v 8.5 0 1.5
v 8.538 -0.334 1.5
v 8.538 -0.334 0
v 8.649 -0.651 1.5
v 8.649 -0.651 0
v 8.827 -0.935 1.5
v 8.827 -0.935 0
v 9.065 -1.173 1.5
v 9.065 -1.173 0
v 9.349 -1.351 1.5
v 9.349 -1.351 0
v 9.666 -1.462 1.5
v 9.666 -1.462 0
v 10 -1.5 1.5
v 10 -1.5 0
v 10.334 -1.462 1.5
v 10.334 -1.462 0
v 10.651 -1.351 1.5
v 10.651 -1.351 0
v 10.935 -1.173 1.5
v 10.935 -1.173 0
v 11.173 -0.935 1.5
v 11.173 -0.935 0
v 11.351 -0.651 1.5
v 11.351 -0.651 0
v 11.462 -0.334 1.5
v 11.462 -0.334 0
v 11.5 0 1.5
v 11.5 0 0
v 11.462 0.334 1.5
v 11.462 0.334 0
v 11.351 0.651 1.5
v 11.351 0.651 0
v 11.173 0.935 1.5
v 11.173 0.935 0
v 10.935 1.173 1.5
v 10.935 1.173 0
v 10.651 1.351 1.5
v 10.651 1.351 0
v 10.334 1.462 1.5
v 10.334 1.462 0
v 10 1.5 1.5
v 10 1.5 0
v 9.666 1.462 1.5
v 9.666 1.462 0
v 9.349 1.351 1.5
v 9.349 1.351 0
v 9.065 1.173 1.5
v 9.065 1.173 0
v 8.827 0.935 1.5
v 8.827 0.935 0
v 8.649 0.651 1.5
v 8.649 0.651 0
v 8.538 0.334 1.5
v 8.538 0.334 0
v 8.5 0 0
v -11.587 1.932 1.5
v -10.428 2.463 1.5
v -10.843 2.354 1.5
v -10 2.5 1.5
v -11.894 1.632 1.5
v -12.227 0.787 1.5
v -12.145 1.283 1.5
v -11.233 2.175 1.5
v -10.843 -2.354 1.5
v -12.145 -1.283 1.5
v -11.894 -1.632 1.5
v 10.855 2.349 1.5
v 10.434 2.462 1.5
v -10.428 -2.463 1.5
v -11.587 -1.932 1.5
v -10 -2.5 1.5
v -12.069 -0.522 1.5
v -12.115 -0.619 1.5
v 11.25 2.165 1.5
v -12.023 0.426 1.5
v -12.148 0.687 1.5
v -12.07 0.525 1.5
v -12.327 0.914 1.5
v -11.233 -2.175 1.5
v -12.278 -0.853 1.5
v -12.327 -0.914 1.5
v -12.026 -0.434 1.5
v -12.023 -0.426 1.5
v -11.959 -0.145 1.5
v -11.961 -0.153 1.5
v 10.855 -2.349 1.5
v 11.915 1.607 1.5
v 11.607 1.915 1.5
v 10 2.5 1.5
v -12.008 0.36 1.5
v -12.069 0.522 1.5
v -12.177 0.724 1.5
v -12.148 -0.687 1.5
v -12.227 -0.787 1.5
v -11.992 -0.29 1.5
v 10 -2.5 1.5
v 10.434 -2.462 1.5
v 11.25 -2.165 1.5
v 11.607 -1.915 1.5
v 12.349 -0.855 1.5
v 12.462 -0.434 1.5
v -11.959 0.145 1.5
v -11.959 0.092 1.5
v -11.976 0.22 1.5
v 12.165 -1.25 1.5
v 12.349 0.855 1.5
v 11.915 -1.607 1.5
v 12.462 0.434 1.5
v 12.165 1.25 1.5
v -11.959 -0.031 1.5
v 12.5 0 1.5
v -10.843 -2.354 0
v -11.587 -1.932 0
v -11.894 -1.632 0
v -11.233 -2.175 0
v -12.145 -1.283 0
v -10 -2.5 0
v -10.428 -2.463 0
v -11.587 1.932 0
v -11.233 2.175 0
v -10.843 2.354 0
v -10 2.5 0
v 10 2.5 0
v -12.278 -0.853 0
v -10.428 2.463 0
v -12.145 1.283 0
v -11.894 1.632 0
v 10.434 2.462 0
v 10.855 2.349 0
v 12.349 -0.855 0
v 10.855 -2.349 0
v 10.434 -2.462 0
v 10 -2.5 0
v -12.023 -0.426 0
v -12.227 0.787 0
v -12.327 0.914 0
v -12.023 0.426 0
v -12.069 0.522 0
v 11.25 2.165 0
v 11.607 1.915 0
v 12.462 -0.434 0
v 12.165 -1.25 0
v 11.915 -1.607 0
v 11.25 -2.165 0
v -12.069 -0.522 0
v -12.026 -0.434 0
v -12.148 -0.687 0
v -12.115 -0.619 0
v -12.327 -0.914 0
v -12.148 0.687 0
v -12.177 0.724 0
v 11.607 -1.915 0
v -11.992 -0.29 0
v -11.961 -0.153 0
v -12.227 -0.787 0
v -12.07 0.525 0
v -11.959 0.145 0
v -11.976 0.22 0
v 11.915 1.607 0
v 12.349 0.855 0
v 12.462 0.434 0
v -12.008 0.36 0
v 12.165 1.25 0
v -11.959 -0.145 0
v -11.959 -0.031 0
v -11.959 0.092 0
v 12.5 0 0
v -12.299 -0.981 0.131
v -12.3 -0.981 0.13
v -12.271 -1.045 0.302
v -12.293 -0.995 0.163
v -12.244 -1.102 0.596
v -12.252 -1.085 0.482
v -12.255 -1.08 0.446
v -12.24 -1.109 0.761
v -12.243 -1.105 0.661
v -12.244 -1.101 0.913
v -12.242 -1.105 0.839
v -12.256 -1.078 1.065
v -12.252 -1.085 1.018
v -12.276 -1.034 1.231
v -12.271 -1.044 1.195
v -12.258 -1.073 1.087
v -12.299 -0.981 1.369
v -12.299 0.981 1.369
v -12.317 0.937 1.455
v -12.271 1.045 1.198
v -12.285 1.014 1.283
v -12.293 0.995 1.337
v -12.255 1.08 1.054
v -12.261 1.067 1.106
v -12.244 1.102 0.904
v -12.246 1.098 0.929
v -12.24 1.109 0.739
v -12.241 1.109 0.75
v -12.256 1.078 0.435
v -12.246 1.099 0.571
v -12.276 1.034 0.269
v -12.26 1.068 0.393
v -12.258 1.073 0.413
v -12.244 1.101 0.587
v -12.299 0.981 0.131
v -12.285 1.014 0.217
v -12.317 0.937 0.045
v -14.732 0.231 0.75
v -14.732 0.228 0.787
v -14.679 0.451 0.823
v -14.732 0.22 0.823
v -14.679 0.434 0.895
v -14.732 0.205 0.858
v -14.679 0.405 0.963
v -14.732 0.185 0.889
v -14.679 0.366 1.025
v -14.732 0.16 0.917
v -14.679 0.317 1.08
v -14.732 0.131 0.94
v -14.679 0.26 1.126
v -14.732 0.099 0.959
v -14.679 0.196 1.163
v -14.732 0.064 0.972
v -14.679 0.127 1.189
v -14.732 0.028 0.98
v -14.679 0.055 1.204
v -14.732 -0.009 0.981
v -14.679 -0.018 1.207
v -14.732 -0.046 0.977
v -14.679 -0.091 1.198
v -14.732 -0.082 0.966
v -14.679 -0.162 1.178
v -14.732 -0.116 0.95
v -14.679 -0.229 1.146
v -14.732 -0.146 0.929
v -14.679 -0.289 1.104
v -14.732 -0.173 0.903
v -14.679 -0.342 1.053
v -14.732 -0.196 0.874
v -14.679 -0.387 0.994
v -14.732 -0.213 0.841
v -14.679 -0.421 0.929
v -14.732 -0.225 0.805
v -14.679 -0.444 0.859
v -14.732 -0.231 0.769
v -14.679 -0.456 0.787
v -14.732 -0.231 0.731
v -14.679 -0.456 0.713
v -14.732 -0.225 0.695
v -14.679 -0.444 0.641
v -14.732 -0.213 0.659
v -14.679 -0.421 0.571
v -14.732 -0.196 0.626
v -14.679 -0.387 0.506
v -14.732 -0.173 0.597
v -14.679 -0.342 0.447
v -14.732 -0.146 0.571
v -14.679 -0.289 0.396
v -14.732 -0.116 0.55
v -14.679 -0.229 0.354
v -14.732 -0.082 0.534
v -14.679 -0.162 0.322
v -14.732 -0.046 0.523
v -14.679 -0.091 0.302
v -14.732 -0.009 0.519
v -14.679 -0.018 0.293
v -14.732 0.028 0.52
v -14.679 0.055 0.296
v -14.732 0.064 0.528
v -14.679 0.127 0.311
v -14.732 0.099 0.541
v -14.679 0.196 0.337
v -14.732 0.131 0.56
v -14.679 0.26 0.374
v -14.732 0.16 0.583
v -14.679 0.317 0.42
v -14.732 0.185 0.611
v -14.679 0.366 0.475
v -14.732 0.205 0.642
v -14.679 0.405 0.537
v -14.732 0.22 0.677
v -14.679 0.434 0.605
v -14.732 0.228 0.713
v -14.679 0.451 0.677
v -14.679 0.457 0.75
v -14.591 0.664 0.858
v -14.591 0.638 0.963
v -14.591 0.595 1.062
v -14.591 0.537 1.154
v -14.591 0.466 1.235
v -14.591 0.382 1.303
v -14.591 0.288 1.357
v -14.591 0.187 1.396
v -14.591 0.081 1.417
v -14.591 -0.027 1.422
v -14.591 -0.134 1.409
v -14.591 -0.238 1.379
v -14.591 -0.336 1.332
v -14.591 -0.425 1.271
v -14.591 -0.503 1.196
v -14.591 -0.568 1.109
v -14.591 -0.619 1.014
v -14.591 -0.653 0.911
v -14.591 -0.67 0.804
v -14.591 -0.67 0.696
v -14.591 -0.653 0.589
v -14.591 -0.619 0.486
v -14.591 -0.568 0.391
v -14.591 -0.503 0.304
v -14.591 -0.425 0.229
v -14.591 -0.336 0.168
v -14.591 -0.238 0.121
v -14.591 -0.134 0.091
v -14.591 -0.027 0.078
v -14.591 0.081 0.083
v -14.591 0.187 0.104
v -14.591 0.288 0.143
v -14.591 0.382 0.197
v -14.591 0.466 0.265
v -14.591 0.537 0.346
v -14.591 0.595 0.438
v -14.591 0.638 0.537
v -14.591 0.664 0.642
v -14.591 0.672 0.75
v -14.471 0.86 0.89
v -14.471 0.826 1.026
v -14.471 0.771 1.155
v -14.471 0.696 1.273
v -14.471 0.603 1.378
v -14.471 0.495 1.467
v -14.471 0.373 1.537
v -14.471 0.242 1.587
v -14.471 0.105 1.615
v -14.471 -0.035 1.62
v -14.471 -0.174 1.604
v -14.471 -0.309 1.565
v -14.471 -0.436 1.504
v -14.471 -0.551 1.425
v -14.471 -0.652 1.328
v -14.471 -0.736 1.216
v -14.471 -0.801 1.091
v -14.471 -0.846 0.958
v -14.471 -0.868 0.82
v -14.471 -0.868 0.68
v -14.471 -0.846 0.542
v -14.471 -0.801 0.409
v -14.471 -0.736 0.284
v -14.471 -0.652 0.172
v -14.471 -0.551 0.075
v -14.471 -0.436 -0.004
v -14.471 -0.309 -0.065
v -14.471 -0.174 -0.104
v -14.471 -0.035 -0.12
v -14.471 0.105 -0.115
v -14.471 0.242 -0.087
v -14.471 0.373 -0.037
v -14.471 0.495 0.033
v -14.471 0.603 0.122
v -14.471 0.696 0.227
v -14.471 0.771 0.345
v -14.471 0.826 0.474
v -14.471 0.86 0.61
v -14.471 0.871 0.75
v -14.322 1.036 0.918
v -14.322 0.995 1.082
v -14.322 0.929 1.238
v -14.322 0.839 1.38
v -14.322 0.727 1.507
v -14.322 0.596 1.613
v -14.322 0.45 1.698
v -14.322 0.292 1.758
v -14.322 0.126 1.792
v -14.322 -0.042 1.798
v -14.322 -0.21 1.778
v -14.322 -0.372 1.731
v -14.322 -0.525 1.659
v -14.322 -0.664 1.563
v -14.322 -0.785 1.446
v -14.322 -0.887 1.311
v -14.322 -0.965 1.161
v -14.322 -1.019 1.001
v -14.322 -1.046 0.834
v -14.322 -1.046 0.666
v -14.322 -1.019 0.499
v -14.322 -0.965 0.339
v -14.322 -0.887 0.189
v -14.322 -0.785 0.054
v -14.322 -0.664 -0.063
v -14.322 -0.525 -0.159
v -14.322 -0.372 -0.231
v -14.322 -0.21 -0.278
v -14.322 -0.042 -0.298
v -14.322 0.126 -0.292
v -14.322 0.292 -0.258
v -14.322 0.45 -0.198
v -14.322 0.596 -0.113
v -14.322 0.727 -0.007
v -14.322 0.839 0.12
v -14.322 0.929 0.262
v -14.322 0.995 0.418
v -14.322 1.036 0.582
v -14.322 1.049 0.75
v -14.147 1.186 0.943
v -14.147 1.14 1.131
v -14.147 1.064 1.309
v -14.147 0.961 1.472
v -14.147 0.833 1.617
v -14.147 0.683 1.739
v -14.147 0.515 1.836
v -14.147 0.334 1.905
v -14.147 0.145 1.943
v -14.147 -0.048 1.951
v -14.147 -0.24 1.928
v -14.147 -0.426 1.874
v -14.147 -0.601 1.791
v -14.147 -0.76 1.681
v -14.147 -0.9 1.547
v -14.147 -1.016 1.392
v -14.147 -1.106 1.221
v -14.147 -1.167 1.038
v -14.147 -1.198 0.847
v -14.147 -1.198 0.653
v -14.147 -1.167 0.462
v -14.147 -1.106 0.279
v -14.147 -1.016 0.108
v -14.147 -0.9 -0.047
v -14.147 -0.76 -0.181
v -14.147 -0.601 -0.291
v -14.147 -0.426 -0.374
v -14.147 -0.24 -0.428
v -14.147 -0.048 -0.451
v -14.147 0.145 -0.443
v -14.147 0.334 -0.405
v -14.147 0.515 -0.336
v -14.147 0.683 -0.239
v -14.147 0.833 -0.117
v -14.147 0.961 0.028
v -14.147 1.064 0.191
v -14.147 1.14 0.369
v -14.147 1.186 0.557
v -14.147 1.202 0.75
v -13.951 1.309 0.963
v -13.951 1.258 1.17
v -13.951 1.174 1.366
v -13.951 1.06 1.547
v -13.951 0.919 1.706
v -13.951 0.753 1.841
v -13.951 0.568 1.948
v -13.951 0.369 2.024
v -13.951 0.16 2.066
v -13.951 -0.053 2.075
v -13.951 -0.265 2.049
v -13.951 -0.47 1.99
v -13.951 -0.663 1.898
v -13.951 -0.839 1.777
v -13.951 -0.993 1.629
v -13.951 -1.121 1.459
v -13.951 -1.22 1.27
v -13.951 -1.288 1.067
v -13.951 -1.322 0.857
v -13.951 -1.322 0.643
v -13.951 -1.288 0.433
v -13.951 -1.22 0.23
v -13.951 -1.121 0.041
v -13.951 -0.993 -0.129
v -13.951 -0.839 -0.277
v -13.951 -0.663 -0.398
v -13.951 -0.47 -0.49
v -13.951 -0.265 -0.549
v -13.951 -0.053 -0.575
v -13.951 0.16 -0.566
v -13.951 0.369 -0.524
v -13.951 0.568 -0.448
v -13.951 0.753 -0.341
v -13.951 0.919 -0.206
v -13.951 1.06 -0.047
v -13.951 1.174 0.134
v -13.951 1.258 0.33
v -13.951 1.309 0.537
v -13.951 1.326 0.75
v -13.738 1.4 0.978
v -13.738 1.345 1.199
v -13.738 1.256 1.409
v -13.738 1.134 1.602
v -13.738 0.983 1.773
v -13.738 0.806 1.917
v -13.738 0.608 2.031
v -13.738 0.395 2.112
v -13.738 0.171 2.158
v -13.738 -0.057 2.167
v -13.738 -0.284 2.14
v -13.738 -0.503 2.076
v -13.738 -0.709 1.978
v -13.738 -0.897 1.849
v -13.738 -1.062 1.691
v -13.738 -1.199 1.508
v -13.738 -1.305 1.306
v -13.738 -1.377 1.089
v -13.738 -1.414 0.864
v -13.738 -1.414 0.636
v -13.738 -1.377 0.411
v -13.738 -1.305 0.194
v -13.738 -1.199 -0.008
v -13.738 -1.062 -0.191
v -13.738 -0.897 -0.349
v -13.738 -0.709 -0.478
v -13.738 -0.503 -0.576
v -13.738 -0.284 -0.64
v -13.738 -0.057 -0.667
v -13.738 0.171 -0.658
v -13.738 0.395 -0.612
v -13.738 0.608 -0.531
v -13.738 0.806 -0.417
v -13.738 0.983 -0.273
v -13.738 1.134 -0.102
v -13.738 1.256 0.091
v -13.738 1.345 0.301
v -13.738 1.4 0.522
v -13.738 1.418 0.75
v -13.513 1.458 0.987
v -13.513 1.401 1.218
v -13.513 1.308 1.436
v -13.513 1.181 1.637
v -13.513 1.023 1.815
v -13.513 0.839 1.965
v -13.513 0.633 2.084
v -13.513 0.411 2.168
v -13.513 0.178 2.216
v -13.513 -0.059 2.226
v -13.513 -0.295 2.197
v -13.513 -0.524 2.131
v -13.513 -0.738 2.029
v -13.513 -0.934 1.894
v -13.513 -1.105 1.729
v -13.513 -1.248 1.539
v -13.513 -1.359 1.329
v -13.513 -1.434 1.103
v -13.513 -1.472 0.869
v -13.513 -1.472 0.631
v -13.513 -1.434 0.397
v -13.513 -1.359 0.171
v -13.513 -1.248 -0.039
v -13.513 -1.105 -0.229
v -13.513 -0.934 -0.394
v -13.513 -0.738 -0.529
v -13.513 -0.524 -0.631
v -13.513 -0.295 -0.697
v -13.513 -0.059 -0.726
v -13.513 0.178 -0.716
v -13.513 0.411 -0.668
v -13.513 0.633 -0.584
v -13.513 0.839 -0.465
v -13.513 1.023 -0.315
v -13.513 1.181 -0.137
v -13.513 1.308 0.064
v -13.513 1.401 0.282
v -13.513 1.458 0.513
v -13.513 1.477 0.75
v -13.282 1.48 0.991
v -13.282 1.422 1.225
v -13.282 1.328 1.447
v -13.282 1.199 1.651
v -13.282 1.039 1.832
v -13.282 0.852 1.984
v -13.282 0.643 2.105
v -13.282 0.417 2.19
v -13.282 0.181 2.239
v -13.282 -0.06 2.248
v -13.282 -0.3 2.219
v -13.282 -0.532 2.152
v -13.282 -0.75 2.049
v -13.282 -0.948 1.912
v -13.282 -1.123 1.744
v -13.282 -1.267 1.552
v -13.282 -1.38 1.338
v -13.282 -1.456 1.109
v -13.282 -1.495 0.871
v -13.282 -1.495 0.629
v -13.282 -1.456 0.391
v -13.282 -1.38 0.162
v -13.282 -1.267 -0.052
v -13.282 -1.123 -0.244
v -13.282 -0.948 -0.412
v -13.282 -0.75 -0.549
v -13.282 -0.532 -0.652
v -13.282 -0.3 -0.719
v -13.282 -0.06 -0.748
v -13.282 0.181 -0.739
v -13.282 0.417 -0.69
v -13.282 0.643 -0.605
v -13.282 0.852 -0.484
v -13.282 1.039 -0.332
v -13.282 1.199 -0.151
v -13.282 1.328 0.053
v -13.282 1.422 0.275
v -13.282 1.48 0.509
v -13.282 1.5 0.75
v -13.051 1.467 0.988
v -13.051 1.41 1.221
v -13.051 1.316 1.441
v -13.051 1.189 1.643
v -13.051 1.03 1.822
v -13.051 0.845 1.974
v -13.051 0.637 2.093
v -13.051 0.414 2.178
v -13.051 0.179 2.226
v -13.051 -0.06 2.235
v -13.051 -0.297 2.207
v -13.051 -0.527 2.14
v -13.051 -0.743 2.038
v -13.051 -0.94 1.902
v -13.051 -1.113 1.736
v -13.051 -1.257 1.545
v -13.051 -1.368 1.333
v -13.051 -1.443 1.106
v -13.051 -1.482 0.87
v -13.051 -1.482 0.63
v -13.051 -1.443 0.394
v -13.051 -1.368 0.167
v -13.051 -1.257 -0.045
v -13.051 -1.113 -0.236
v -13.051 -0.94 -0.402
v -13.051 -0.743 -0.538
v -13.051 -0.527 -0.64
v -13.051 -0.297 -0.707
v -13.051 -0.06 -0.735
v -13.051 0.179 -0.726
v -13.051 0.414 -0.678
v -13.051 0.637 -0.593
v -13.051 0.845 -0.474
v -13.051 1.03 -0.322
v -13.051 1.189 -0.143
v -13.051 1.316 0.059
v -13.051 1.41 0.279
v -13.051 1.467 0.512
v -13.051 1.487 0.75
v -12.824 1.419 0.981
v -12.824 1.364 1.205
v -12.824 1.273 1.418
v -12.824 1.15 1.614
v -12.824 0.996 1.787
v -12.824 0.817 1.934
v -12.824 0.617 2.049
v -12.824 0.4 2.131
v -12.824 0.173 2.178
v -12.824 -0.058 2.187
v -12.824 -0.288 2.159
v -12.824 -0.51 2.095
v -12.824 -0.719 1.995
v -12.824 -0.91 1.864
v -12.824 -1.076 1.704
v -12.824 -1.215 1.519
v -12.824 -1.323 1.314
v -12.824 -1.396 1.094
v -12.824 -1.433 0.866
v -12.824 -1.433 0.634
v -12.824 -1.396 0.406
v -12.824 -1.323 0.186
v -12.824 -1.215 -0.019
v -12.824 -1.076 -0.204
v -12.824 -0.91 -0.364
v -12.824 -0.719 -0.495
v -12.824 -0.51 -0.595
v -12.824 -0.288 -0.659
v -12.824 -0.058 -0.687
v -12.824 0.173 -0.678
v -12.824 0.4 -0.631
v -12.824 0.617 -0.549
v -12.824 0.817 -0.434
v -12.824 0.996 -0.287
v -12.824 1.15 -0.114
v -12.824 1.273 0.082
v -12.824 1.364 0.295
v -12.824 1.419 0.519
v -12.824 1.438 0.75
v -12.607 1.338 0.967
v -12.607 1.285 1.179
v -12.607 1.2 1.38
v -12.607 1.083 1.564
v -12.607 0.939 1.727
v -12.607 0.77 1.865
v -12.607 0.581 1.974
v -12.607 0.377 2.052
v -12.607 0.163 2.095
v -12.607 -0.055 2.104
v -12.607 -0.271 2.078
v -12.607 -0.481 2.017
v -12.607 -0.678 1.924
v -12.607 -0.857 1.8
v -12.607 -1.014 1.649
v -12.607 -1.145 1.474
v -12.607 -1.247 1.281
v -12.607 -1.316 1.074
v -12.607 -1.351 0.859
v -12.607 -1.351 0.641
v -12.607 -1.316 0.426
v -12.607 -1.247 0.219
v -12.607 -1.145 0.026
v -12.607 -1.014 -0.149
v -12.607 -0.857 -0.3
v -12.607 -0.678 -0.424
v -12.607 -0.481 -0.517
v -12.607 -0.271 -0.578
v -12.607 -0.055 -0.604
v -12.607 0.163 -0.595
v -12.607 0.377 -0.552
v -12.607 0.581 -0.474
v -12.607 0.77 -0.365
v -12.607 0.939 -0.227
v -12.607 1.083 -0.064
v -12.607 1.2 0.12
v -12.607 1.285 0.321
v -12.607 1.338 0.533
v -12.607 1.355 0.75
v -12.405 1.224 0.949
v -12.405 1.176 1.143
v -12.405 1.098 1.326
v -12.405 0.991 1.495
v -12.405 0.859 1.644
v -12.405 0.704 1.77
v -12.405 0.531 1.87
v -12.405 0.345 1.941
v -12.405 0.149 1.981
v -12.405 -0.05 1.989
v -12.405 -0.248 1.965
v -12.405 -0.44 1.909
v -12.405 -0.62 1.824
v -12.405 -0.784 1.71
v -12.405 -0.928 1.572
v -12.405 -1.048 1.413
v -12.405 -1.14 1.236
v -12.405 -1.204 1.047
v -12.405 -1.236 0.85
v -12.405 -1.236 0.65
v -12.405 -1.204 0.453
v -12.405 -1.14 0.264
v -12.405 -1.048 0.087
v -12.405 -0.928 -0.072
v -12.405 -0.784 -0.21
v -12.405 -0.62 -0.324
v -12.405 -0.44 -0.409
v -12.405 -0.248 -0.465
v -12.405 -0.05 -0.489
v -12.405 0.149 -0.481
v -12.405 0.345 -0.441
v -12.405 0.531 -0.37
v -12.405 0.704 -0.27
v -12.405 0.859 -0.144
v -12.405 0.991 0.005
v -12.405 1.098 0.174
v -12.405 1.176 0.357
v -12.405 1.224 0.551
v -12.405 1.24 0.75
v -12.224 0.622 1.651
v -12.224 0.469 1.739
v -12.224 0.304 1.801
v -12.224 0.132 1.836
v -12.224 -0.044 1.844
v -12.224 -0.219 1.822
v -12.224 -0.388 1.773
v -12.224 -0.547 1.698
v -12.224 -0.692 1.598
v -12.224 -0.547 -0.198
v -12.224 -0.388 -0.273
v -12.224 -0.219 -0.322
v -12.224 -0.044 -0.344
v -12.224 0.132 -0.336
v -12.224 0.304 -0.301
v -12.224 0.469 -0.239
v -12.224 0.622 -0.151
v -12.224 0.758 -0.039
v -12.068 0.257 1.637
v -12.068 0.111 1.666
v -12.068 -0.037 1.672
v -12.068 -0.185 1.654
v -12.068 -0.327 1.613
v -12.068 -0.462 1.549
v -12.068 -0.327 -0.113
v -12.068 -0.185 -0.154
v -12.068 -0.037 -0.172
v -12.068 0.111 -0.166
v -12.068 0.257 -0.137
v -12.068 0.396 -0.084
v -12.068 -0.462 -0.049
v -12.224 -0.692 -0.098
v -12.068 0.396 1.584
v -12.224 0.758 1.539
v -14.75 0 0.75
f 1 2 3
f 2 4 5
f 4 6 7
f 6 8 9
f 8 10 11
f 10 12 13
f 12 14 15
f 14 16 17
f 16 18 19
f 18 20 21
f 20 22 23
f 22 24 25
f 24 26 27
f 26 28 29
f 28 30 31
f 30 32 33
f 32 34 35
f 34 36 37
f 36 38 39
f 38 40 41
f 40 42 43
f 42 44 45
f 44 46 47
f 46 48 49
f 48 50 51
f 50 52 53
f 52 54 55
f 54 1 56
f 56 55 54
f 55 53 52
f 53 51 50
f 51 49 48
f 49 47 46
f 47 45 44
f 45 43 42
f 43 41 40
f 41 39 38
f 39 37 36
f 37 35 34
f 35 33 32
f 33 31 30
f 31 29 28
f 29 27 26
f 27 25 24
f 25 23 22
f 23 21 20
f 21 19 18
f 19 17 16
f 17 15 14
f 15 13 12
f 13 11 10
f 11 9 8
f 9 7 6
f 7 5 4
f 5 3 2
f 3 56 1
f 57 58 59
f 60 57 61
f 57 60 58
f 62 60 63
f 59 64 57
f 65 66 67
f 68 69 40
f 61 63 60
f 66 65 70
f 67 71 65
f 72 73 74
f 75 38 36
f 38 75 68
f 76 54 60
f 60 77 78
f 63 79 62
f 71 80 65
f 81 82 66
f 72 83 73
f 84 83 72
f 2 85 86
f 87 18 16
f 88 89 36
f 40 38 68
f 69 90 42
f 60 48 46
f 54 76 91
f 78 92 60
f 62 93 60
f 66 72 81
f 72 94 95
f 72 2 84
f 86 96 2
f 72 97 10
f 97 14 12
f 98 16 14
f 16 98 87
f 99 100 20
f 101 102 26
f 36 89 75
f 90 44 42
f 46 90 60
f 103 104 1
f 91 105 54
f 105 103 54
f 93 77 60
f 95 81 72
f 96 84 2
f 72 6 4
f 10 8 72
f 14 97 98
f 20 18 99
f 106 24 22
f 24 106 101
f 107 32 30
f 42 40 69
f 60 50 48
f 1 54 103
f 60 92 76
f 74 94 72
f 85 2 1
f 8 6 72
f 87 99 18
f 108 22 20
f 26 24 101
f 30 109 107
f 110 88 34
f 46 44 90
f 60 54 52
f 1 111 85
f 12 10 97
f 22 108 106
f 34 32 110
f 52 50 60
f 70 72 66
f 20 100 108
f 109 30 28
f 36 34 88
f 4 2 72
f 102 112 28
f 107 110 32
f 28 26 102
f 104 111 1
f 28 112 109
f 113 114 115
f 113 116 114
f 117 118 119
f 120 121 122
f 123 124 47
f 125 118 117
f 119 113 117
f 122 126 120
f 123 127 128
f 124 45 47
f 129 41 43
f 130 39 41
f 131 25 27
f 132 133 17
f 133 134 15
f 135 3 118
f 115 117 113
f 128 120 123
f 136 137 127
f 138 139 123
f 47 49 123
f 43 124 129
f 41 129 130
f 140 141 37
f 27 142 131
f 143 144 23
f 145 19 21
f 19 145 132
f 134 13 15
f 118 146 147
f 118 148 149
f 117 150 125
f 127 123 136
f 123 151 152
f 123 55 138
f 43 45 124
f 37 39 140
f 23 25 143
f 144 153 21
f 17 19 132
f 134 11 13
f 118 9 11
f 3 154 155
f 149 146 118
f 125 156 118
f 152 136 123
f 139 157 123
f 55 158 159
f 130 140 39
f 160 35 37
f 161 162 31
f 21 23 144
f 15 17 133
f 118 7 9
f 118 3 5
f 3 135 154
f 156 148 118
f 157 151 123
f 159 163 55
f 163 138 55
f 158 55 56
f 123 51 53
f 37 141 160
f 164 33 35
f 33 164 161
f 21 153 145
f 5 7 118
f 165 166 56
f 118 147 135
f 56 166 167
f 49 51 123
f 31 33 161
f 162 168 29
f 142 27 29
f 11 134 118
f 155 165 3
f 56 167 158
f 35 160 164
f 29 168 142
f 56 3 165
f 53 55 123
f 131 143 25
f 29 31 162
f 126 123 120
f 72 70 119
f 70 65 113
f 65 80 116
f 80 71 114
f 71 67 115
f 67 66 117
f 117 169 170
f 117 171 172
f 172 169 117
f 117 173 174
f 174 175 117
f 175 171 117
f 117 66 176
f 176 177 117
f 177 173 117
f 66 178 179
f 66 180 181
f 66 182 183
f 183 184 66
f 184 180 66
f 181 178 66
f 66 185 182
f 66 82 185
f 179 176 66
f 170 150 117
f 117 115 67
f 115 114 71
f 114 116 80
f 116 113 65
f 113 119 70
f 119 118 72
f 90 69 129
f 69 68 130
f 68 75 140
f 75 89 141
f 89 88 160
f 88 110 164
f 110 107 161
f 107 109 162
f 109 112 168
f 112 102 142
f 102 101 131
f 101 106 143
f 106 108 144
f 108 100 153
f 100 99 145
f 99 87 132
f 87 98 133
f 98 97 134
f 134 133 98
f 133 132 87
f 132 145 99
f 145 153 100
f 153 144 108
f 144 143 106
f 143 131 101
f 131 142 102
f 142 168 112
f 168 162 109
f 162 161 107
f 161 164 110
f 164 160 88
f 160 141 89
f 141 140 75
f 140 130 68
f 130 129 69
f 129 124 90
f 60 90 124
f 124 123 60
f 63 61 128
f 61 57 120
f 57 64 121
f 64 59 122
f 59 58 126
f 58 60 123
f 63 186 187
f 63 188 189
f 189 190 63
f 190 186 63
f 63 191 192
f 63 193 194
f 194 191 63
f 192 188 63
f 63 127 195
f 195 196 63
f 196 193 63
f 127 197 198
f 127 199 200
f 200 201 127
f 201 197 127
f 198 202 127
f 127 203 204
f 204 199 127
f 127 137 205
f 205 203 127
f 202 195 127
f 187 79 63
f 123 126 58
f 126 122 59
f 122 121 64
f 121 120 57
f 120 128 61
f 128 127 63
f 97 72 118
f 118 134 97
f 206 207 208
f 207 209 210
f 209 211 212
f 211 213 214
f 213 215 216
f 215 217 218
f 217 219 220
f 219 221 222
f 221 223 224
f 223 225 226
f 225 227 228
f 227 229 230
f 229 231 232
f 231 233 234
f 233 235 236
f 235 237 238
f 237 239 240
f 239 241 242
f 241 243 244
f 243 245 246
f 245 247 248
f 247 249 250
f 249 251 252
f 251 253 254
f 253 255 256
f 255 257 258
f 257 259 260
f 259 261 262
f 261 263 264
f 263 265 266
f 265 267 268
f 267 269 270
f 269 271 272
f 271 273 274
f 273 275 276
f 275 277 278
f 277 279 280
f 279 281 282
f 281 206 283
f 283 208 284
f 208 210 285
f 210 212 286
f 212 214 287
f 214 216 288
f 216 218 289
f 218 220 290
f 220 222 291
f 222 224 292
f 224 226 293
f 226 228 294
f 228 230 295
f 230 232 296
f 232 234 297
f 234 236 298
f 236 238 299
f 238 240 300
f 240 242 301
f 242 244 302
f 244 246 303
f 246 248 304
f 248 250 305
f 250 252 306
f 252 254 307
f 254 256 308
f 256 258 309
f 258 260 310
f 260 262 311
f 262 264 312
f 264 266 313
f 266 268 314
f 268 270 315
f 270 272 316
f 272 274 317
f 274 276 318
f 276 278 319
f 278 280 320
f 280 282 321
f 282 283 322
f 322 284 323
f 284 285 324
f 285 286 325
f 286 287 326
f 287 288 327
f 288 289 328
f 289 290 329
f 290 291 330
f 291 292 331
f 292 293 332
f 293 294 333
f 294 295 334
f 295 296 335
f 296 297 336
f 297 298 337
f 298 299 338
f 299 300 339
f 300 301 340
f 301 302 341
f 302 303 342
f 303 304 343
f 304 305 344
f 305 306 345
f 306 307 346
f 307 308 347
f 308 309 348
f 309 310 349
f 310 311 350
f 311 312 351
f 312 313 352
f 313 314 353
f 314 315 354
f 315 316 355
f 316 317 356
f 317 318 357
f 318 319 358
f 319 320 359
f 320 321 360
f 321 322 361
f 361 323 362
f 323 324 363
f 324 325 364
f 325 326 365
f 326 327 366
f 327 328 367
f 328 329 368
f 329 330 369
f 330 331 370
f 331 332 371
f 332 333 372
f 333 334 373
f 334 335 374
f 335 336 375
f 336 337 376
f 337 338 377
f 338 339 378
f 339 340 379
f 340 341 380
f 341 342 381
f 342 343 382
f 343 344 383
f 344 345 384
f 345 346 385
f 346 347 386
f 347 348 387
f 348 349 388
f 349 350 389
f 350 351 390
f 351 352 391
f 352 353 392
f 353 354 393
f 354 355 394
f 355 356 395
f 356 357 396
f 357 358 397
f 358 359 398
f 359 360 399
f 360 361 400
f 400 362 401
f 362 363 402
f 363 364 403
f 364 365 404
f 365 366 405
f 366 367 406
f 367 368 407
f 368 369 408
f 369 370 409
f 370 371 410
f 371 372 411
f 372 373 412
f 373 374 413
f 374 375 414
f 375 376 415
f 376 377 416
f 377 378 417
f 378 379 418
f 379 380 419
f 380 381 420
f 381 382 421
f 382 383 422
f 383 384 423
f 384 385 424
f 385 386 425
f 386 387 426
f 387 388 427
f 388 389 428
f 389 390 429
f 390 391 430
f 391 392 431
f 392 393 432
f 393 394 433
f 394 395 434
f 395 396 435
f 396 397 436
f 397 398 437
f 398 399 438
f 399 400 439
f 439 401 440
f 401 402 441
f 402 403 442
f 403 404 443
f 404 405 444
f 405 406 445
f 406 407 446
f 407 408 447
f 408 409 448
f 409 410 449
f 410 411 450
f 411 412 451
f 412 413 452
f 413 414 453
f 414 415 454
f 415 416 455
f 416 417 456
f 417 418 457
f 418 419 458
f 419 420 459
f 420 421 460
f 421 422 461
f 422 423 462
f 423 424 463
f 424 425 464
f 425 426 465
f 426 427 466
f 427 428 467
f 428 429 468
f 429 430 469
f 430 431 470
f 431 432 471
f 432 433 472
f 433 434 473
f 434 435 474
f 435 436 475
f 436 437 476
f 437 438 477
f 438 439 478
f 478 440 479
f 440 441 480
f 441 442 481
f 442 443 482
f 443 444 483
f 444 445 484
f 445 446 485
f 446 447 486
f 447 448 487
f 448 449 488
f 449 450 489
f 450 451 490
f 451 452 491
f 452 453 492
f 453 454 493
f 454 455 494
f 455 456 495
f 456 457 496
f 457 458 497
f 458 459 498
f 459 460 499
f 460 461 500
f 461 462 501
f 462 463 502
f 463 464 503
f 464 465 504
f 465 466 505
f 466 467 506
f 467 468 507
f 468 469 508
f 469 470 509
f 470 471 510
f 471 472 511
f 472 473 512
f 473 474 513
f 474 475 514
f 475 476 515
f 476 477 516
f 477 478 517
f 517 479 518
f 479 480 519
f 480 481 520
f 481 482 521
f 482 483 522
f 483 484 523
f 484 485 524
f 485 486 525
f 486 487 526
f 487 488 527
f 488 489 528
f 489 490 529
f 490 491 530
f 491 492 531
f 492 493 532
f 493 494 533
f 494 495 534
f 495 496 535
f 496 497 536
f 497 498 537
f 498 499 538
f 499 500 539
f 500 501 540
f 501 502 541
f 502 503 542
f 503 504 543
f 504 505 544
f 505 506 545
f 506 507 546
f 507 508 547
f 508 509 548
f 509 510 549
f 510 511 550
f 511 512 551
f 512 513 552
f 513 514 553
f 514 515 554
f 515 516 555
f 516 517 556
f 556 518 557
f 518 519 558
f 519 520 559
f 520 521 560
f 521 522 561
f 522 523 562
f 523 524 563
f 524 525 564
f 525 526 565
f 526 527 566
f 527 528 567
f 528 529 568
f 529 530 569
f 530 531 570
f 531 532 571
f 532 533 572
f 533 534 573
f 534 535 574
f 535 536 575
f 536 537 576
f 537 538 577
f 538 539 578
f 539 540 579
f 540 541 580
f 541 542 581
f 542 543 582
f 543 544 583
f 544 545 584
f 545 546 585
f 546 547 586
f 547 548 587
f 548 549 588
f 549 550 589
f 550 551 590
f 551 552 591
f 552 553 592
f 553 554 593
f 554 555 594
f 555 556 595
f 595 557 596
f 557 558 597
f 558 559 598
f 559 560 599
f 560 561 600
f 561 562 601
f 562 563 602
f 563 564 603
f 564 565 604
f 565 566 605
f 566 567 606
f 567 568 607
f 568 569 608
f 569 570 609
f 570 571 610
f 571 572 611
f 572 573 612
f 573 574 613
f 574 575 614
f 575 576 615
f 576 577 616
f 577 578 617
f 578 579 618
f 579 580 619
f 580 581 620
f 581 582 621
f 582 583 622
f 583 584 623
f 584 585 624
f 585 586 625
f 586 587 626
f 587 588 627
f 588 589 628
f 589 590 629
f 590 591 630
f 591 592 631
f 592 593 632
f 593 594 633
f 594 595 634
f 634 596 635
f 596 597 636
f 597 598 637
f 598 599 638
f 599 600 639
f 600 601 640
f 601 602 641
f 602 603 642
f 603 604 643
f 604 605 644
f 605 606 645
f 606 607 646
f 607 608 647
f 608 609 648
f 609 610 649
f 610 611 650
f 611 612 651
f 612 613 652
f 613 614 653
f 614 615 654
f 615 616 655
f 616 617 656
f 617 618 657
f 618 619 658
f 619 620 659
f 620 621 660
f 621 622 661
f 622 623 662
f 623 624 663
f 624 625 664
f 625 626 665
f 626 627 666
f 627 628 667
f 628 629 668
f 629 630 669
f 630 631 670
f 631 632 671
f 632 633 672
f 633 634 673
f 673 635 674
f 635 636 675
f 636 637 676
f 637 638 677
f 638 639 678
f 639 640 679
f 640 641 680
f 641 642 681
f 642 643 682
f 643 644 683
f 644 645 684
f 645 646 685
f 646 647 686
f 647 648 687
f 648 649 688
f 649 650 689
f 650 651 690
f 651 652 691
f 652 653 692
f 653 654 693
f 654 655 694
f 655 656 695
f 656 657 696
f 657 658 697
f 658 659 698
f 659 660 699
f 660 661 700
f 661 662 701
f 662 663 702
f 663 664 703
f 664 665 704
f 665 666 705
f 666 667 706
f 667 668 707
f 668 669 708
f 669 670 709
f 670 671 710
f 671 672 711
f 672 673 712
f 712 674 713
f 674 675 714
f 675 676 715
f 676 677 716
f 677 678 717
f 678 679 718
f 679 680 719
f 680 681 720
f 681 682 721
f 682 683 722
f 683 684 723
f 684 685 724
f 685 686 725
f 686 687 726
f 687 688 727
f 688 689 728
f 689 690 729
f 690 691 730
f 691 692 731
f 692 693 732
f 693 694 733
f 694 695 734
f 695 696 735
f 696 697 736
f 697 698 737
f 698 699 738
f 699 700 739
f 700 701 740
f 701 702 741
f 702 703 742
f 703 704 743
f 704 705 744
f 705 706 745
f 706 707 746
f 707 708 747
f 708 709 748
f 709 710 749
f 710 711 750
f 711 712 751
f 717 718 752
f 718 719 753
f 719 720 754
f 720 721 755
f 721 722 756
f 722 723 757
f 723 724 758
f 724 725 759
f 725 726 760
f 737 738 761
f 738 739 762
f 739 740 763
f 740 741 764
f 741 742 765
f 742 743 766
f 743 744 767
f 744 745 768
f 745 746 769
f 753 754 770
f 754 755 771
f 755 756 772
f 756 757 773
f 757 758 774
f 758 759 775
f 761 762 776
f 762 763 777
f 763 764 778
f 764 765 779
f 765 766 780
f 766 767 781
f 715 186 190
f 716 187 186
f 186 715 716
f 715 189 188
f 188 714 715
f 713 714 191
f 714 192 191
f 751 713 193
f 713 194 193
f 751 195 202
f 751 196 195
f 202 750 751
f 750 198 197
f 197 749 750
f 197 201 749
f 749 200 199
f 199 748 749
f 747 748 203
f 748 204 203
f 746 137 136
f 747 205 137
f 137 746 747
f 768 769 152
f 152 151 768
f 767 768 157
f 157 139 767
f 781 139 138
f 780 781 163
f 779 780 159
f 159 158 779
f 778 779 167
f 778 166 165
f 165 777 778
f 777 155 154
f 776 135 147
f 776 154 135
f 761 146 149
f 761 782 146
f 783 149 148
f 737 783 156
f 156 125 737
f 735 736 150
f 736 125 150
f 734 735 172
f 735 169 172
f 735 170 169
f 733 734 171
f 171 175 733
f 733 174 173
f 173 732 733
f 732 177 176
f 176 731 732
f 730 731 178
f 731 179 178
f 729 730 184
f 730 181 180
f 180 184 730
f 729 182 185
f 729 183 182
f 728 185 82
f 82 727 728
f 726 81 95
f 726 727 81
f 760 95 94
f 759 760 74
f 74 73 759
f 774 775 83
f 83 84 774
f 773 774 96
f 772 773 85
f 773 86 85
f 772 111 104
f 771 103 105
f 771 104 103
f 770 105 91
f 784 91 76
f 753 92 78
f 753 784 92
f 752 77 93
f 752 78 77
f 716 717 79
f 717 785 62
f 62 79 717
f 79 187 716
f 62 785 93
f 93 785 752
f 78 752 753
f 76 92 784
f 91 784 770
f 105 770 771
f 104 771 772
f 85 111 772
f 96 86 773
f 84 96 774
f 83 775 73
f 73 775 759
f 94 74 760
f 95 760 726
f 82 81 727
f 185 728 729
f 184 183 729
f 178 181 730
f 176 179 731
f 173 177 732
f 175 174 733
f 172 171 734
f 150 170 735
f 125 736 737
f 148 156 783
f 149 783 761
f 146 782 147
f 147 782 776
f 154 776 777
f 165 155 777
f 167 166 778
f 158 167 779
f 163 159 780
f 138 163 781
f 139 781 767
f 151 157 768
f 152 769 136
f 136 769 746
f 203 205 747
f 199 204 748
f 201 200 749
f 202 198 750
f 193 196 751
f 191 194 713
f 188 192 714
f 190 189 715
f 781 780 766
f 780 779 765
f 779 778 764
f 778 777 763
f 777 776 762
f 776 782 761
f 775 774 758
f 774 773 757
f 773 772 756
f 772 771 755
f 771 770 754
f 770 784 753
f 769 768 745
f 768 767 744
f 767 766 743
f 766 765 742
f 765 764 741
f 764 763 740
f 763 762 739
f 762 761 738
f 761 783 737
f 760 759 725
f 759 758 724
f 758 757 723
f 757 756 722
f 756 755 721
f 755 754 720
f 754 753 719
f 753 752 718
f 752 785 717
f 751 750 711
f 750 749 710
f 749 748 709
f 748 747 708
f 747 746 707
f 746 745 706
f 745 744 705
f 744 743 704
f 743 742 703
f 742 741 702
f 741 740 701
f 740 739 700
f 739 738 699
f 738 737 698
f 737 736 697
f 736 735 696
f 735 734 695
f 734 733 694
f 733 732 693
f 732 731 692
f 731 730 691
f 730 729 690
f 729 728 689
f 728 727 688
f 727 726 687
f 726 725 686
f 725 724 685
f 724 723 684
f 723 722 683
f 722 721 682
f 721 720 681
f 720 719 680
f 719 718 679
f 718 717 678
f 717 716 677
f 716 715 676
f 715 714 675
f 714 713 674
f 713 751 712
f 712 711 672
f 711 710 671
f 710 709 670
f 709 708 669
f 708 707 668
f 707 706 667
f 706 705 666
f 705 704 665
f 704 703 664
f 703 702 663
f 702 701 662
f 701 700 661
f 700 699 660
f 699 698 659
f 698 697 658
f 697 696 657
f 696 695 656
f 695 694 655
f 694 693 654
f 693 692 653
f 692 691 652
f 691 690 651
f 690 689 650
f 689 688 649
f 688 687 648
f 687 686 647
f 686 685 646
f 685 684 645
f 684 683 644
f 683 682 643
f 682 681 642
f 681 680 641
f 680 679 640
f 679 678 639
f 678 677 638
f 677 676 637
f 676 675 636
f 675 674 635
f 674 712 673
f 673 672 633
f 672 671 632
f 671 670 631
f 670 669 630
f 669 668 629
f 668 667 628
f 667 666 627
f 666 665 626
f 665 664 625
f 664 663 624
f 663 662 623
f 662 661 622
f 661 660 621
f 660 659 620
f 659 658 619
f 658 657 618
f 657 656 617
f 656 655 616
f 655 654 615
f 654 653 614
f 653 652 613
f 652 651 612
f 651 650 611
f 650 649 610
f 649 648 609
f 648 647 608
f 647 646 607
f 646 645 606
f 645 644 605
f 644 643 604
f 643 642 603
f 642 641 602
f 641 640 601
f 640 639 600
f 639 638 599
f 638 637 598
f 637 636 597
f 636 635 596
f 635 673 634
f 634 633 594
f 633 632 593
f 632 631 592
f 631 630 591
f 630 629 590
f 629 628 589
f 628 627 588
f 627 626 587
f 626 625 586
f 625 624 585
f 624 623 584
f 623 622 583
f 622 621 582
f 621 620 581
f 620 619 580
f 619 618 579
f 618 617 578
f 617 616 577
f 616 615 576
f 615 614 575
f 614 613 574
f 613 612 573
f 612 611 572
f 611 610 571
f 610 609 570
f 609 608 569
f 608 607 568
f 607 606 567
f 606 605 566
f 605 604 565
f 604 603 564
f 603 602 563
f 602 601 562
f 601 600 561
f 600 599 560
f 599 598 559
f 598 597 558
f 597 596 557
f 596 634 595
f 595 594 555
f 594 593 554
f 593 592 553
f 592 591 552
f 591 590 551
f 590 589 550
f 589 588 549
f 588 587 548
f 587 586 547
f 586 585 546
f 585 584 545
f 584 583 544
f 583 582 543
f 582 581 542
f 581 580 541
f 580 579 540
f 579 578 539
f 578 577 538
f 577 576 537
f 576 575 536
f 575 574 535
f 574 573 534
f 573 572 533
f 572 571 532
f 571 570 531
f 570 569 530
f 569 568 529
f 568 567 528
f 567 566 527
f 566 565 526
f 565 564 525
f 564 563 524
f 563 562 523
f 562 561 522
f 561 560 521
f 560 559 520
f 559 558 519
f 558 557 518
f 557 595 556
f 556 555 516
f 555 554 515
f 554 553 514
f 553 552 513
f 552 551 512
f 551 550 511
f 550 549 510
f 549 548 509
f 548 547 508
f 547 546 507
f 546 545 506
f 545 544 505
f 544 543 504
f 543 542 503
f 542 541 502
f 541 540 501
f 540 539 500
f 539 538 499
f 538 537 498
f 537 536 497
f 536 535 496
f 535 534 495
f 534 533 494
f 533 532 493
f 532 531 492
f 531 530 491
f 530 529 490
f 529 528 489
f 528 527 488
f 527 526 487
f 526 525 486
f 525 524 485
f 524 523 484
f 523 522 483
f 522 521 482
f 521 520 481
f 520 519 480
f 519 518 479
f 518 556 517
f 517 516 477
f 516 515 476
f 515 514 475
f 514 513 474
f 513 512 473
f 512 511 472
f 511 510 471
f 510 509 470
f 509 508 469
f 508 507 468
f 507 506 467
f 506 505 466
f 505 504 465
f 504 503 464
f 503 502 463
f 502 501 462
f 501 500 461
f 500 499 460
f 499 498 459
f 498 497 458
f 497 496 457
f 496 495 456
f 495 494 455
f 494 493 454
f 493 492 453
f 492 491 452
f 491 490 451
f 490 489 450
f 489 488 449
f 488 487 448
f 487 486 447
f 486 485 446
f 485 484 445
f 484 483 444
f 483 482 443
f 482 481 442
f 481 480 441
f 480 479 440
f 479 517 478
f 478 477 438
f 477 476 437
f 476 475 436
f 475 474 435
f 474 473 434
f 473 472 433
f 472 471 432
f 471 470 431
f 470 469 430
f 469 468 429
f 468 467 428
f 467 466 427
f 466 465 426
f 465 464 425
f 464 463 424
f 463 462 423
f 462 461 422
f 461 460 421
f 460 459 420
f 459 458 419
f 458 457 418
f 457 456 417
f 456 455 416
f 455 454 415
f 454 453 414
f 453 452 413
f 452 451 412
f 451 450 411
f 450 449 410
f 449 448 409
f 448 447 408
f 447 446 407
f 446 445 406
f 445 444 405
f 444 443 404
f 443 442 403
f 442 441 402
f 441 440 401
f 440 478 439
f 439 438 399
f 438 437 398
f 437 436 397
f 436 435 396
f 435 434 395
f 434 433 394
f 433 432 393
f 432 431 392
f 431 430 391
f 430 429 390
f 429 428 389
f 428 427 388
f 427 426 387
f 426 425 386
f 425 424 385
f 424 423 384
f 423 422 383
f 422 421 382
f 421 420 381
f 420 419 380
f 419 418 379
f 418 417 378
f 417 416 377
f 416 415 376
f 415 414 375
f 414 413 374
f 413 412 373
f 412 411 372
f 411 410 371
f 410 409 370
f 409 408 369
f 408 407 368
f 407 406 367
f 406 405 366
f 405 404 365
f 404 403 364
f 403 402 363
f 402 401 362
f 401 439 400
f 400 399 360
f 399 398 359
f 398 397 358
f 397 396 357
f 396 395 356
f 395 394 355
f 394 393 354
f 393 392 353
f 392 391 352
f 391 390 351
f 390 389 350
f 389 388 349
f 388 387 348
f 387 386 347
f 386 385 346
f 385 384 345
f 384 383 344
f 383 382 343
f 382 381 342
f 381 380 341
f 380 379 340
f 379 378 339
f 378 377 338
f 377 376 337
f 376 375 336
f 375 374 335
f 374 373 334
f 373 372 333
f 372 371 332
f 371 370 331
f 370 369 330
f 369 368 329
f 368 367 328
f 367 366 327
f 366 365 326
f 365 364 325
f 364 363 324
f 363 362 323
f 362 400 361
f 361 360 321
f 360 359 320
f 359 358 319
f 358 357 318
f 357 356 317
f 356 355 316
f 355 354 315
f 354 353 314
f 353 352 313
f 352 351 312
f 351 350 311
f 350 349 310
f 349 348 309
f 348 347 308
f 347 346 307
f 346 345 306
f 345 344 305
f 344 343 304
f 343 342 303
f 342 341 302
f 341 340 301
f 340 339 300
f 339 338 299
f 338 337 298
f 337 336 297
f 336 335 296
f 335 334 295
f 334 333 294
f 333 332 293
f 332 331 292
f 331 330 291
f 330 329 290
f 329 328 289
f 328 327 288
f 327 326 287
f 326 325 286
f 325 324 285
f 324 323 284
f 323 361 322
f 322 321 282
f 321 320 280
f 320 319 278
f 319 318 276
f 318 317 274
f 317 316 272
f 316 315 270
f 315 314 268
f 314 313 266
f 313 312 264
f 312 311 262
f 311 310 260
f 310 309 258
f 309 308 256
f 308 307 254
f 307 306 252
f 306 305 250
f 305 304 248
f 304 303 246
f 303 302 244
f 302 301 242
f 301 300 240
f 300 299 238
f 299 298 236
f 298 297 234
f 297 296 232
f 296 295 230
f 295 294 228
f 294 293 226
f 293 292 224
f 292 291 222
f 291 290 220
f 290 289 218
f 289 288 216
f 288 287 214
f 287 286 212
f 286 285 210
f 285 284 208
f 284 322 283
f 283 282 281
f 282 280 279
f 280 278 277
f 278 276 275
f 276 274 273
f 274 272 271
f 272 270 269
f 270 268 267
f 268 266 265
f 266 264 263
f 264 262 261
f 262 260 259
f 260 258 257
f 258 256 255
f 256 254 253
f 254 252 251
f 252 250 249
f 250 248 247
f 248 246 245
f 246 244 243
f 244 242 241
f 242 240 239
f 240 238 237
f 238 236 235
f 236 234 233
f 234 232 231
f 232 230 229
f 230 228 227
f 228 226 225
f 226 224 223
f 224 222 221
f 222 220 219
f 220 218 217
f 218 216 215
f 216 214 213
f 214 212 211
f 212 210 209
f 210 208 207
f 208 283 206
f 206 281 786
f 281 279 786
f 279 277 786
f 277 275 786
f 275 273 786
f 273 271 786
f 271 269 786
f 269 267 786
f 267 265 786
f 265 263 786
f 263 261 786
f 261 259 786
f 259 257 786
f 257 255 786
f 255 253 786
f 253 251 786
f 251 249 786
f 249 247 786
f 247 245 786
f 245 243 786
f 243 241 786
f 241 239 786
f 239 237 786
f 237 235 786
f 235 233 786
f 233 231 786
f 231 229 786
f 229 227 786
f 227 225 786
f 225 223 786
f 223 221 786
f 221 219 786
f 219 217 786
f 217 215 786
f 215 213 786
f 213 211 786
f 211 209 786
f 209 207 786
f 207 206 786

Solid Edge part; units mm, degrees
sketch "Sketch1" plane through (0, 0, 0) normal (0, 0, 1) x (1, 0, 0)
  line L0 (10, 2.5) -> (-10, 2.5)
  line L1 (-10, -2.5) -> (10, -2.5)
  arc A0 (-10, -2.5) -> (-10, 2.5) centre (-10, 0) cw
  arc A1 (10, 2.5) -> (10, -2.5) centre (10, 0) cw
  circle A2 centre (10, 0) radius 1.5
extrude "Protrusion1" add sketch "Sketch1" along normal blind 1.5
sketch "Sketch2" plane through (0, 0, 0.75) normal (0, 0, -1) x (1, 0, 0)
  line L0 (-14.75, 0) -> (-11.75, 0)
  arc A0 (-11.75, 0) -> (-14.75, 0) centre (-13.25, 0) cw
revolve "RevolvedProtrusion1" add sketch "Sketch2" angle 360 about axis through (-14.75, 0, 0.75) along (1, 0, 0)
